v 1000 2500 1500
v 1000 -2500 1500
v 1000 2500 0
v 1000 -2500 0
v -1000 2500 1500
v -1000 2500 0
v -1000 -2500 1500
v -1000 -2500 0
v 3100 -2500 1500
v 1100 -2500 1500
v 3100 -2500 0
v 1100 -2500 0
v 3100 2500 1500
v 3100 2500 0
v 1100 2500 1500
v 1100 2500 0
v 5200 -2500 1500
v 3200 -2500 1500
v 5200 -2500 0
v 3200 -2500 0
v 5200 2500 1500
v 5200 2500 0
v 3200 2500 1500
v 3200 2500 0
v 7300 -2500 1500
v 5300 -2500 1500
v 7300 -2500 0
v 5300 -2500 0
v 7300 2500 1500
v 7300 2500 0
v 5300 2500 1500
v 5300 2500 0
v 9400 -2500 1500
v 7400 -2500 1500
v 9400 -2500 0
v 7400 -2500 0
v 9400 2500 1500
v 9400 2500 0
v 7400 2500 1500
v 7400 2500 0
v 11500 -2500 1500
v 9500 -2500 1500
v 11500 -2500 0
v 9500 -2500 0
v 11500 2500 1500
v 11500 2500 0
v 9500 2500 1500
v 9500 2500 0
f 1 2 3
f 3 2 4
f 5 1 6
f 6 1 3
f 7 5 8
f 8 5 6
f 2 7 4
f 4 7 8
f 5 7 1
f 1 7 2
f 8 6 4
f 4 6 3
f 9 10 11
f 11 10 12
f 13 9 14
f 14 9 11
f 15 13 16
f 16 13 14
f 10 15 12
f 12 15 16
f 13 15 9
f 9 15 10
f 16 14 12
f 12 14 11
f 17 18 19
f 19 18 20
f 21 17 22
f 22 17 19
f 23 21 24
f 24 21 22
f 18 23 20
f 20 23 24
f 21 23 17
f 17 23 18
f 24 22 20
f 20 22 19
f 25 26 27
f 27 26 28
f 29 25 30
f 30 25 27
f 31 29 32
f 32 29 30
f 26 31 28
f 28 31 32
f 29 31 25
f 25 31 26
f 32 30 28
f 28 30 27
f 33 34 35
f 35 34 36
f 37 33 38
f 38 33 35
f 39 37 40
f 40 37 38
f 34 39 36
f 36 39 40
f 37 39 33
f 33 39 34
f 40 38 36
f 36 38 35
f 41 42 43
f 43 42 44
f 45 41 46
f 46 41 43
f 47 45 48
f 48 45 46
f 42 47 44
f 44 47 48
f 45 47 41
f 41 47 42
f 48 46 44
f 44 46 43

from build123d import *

# Parameters (mm, degrees)
SKETCH2_W             = 2000
SKETCH2_H             = 5000
BOSS_EXTRUDE1_DEPTH   = 1500
BOSS_EXTRUDE1_2_DEPTH = 1500
BOSS_EXTRUDE1_3_DEPTH = 1500
BOSS_EXTRUDE1_4_DEPTH = 1500
BOSS_EXTRUDE1_5_DEPTH = 1500
BOSS_EXTRUDE1_6_DEPTH = 1500


with BuildPart() as part:
    # Sketch2 → Boss-Extrude1 (new body)
    with BuildSketch(Plane.XY):
        with Locations((2100, 0)):
            Rectangle(SKETCH2_W, SKETCH2_H)
    extrude(amount=BOSS_EXTRUDE1_DEPTH)


with BuildPart() as body_2:
    # Sketch2 → Boss-Extrude1 2 (new body)
    with BuildSketch(Plane.XY):
        Rectangle(SKETCH2_W, SKETCH2_H)
    extrude(amount=BOSS_EXTRUDE1_2_DEPTH)


with BuildPart() as body_3:
    # Sketch2 → Boss-Extrude1 3 (new body)
    with BuildSketch(Plane.XY):
        with Locations((4200, 0)):
            Rectangle(SKETCH2_W, SKETCH2_H)
    extrude(amount=BOSS_EXTRUDE1_3_DEPTH)


with BuildPart() as body_4:
    # Sketch2 → Boss-Extrude1 4 (new body)
    with BuildSketch(Plane.XY):
        with Locations((6300, 0)):
            Rectangle(SKETCH2_W, SKETCH2_H)
    extrude(amount=BOSS_EXTRUDE1_4_DEPTH)


with BuildPart() as body_5:
    # Sketch2 → Boss-Extrude1 5 (new body)
    with BuildSketch(Plane.XY):
        with Locations((8400, 0)):
            Rectangle(SKETCH2_W, SKETCH2_H)
    extrude(amount=BOSS_EXTRUDE1_5_DEPTH)


with BuildPart() as body_6:
    # Sketch2 → Boss-Extrude1 6 (new body)
    with BuildSketch(Plane.XY):
        with Locations((10500, 0)):
            Rectangle(SKETCH2_W, SKETCH2_H)
    extrude(amount=BOSS_EXTRUDE1_6_DEPTH)


solid = Compound([part.part, body_2.part, body_3.part, body_4.part, body_5.part, body_6.part])
